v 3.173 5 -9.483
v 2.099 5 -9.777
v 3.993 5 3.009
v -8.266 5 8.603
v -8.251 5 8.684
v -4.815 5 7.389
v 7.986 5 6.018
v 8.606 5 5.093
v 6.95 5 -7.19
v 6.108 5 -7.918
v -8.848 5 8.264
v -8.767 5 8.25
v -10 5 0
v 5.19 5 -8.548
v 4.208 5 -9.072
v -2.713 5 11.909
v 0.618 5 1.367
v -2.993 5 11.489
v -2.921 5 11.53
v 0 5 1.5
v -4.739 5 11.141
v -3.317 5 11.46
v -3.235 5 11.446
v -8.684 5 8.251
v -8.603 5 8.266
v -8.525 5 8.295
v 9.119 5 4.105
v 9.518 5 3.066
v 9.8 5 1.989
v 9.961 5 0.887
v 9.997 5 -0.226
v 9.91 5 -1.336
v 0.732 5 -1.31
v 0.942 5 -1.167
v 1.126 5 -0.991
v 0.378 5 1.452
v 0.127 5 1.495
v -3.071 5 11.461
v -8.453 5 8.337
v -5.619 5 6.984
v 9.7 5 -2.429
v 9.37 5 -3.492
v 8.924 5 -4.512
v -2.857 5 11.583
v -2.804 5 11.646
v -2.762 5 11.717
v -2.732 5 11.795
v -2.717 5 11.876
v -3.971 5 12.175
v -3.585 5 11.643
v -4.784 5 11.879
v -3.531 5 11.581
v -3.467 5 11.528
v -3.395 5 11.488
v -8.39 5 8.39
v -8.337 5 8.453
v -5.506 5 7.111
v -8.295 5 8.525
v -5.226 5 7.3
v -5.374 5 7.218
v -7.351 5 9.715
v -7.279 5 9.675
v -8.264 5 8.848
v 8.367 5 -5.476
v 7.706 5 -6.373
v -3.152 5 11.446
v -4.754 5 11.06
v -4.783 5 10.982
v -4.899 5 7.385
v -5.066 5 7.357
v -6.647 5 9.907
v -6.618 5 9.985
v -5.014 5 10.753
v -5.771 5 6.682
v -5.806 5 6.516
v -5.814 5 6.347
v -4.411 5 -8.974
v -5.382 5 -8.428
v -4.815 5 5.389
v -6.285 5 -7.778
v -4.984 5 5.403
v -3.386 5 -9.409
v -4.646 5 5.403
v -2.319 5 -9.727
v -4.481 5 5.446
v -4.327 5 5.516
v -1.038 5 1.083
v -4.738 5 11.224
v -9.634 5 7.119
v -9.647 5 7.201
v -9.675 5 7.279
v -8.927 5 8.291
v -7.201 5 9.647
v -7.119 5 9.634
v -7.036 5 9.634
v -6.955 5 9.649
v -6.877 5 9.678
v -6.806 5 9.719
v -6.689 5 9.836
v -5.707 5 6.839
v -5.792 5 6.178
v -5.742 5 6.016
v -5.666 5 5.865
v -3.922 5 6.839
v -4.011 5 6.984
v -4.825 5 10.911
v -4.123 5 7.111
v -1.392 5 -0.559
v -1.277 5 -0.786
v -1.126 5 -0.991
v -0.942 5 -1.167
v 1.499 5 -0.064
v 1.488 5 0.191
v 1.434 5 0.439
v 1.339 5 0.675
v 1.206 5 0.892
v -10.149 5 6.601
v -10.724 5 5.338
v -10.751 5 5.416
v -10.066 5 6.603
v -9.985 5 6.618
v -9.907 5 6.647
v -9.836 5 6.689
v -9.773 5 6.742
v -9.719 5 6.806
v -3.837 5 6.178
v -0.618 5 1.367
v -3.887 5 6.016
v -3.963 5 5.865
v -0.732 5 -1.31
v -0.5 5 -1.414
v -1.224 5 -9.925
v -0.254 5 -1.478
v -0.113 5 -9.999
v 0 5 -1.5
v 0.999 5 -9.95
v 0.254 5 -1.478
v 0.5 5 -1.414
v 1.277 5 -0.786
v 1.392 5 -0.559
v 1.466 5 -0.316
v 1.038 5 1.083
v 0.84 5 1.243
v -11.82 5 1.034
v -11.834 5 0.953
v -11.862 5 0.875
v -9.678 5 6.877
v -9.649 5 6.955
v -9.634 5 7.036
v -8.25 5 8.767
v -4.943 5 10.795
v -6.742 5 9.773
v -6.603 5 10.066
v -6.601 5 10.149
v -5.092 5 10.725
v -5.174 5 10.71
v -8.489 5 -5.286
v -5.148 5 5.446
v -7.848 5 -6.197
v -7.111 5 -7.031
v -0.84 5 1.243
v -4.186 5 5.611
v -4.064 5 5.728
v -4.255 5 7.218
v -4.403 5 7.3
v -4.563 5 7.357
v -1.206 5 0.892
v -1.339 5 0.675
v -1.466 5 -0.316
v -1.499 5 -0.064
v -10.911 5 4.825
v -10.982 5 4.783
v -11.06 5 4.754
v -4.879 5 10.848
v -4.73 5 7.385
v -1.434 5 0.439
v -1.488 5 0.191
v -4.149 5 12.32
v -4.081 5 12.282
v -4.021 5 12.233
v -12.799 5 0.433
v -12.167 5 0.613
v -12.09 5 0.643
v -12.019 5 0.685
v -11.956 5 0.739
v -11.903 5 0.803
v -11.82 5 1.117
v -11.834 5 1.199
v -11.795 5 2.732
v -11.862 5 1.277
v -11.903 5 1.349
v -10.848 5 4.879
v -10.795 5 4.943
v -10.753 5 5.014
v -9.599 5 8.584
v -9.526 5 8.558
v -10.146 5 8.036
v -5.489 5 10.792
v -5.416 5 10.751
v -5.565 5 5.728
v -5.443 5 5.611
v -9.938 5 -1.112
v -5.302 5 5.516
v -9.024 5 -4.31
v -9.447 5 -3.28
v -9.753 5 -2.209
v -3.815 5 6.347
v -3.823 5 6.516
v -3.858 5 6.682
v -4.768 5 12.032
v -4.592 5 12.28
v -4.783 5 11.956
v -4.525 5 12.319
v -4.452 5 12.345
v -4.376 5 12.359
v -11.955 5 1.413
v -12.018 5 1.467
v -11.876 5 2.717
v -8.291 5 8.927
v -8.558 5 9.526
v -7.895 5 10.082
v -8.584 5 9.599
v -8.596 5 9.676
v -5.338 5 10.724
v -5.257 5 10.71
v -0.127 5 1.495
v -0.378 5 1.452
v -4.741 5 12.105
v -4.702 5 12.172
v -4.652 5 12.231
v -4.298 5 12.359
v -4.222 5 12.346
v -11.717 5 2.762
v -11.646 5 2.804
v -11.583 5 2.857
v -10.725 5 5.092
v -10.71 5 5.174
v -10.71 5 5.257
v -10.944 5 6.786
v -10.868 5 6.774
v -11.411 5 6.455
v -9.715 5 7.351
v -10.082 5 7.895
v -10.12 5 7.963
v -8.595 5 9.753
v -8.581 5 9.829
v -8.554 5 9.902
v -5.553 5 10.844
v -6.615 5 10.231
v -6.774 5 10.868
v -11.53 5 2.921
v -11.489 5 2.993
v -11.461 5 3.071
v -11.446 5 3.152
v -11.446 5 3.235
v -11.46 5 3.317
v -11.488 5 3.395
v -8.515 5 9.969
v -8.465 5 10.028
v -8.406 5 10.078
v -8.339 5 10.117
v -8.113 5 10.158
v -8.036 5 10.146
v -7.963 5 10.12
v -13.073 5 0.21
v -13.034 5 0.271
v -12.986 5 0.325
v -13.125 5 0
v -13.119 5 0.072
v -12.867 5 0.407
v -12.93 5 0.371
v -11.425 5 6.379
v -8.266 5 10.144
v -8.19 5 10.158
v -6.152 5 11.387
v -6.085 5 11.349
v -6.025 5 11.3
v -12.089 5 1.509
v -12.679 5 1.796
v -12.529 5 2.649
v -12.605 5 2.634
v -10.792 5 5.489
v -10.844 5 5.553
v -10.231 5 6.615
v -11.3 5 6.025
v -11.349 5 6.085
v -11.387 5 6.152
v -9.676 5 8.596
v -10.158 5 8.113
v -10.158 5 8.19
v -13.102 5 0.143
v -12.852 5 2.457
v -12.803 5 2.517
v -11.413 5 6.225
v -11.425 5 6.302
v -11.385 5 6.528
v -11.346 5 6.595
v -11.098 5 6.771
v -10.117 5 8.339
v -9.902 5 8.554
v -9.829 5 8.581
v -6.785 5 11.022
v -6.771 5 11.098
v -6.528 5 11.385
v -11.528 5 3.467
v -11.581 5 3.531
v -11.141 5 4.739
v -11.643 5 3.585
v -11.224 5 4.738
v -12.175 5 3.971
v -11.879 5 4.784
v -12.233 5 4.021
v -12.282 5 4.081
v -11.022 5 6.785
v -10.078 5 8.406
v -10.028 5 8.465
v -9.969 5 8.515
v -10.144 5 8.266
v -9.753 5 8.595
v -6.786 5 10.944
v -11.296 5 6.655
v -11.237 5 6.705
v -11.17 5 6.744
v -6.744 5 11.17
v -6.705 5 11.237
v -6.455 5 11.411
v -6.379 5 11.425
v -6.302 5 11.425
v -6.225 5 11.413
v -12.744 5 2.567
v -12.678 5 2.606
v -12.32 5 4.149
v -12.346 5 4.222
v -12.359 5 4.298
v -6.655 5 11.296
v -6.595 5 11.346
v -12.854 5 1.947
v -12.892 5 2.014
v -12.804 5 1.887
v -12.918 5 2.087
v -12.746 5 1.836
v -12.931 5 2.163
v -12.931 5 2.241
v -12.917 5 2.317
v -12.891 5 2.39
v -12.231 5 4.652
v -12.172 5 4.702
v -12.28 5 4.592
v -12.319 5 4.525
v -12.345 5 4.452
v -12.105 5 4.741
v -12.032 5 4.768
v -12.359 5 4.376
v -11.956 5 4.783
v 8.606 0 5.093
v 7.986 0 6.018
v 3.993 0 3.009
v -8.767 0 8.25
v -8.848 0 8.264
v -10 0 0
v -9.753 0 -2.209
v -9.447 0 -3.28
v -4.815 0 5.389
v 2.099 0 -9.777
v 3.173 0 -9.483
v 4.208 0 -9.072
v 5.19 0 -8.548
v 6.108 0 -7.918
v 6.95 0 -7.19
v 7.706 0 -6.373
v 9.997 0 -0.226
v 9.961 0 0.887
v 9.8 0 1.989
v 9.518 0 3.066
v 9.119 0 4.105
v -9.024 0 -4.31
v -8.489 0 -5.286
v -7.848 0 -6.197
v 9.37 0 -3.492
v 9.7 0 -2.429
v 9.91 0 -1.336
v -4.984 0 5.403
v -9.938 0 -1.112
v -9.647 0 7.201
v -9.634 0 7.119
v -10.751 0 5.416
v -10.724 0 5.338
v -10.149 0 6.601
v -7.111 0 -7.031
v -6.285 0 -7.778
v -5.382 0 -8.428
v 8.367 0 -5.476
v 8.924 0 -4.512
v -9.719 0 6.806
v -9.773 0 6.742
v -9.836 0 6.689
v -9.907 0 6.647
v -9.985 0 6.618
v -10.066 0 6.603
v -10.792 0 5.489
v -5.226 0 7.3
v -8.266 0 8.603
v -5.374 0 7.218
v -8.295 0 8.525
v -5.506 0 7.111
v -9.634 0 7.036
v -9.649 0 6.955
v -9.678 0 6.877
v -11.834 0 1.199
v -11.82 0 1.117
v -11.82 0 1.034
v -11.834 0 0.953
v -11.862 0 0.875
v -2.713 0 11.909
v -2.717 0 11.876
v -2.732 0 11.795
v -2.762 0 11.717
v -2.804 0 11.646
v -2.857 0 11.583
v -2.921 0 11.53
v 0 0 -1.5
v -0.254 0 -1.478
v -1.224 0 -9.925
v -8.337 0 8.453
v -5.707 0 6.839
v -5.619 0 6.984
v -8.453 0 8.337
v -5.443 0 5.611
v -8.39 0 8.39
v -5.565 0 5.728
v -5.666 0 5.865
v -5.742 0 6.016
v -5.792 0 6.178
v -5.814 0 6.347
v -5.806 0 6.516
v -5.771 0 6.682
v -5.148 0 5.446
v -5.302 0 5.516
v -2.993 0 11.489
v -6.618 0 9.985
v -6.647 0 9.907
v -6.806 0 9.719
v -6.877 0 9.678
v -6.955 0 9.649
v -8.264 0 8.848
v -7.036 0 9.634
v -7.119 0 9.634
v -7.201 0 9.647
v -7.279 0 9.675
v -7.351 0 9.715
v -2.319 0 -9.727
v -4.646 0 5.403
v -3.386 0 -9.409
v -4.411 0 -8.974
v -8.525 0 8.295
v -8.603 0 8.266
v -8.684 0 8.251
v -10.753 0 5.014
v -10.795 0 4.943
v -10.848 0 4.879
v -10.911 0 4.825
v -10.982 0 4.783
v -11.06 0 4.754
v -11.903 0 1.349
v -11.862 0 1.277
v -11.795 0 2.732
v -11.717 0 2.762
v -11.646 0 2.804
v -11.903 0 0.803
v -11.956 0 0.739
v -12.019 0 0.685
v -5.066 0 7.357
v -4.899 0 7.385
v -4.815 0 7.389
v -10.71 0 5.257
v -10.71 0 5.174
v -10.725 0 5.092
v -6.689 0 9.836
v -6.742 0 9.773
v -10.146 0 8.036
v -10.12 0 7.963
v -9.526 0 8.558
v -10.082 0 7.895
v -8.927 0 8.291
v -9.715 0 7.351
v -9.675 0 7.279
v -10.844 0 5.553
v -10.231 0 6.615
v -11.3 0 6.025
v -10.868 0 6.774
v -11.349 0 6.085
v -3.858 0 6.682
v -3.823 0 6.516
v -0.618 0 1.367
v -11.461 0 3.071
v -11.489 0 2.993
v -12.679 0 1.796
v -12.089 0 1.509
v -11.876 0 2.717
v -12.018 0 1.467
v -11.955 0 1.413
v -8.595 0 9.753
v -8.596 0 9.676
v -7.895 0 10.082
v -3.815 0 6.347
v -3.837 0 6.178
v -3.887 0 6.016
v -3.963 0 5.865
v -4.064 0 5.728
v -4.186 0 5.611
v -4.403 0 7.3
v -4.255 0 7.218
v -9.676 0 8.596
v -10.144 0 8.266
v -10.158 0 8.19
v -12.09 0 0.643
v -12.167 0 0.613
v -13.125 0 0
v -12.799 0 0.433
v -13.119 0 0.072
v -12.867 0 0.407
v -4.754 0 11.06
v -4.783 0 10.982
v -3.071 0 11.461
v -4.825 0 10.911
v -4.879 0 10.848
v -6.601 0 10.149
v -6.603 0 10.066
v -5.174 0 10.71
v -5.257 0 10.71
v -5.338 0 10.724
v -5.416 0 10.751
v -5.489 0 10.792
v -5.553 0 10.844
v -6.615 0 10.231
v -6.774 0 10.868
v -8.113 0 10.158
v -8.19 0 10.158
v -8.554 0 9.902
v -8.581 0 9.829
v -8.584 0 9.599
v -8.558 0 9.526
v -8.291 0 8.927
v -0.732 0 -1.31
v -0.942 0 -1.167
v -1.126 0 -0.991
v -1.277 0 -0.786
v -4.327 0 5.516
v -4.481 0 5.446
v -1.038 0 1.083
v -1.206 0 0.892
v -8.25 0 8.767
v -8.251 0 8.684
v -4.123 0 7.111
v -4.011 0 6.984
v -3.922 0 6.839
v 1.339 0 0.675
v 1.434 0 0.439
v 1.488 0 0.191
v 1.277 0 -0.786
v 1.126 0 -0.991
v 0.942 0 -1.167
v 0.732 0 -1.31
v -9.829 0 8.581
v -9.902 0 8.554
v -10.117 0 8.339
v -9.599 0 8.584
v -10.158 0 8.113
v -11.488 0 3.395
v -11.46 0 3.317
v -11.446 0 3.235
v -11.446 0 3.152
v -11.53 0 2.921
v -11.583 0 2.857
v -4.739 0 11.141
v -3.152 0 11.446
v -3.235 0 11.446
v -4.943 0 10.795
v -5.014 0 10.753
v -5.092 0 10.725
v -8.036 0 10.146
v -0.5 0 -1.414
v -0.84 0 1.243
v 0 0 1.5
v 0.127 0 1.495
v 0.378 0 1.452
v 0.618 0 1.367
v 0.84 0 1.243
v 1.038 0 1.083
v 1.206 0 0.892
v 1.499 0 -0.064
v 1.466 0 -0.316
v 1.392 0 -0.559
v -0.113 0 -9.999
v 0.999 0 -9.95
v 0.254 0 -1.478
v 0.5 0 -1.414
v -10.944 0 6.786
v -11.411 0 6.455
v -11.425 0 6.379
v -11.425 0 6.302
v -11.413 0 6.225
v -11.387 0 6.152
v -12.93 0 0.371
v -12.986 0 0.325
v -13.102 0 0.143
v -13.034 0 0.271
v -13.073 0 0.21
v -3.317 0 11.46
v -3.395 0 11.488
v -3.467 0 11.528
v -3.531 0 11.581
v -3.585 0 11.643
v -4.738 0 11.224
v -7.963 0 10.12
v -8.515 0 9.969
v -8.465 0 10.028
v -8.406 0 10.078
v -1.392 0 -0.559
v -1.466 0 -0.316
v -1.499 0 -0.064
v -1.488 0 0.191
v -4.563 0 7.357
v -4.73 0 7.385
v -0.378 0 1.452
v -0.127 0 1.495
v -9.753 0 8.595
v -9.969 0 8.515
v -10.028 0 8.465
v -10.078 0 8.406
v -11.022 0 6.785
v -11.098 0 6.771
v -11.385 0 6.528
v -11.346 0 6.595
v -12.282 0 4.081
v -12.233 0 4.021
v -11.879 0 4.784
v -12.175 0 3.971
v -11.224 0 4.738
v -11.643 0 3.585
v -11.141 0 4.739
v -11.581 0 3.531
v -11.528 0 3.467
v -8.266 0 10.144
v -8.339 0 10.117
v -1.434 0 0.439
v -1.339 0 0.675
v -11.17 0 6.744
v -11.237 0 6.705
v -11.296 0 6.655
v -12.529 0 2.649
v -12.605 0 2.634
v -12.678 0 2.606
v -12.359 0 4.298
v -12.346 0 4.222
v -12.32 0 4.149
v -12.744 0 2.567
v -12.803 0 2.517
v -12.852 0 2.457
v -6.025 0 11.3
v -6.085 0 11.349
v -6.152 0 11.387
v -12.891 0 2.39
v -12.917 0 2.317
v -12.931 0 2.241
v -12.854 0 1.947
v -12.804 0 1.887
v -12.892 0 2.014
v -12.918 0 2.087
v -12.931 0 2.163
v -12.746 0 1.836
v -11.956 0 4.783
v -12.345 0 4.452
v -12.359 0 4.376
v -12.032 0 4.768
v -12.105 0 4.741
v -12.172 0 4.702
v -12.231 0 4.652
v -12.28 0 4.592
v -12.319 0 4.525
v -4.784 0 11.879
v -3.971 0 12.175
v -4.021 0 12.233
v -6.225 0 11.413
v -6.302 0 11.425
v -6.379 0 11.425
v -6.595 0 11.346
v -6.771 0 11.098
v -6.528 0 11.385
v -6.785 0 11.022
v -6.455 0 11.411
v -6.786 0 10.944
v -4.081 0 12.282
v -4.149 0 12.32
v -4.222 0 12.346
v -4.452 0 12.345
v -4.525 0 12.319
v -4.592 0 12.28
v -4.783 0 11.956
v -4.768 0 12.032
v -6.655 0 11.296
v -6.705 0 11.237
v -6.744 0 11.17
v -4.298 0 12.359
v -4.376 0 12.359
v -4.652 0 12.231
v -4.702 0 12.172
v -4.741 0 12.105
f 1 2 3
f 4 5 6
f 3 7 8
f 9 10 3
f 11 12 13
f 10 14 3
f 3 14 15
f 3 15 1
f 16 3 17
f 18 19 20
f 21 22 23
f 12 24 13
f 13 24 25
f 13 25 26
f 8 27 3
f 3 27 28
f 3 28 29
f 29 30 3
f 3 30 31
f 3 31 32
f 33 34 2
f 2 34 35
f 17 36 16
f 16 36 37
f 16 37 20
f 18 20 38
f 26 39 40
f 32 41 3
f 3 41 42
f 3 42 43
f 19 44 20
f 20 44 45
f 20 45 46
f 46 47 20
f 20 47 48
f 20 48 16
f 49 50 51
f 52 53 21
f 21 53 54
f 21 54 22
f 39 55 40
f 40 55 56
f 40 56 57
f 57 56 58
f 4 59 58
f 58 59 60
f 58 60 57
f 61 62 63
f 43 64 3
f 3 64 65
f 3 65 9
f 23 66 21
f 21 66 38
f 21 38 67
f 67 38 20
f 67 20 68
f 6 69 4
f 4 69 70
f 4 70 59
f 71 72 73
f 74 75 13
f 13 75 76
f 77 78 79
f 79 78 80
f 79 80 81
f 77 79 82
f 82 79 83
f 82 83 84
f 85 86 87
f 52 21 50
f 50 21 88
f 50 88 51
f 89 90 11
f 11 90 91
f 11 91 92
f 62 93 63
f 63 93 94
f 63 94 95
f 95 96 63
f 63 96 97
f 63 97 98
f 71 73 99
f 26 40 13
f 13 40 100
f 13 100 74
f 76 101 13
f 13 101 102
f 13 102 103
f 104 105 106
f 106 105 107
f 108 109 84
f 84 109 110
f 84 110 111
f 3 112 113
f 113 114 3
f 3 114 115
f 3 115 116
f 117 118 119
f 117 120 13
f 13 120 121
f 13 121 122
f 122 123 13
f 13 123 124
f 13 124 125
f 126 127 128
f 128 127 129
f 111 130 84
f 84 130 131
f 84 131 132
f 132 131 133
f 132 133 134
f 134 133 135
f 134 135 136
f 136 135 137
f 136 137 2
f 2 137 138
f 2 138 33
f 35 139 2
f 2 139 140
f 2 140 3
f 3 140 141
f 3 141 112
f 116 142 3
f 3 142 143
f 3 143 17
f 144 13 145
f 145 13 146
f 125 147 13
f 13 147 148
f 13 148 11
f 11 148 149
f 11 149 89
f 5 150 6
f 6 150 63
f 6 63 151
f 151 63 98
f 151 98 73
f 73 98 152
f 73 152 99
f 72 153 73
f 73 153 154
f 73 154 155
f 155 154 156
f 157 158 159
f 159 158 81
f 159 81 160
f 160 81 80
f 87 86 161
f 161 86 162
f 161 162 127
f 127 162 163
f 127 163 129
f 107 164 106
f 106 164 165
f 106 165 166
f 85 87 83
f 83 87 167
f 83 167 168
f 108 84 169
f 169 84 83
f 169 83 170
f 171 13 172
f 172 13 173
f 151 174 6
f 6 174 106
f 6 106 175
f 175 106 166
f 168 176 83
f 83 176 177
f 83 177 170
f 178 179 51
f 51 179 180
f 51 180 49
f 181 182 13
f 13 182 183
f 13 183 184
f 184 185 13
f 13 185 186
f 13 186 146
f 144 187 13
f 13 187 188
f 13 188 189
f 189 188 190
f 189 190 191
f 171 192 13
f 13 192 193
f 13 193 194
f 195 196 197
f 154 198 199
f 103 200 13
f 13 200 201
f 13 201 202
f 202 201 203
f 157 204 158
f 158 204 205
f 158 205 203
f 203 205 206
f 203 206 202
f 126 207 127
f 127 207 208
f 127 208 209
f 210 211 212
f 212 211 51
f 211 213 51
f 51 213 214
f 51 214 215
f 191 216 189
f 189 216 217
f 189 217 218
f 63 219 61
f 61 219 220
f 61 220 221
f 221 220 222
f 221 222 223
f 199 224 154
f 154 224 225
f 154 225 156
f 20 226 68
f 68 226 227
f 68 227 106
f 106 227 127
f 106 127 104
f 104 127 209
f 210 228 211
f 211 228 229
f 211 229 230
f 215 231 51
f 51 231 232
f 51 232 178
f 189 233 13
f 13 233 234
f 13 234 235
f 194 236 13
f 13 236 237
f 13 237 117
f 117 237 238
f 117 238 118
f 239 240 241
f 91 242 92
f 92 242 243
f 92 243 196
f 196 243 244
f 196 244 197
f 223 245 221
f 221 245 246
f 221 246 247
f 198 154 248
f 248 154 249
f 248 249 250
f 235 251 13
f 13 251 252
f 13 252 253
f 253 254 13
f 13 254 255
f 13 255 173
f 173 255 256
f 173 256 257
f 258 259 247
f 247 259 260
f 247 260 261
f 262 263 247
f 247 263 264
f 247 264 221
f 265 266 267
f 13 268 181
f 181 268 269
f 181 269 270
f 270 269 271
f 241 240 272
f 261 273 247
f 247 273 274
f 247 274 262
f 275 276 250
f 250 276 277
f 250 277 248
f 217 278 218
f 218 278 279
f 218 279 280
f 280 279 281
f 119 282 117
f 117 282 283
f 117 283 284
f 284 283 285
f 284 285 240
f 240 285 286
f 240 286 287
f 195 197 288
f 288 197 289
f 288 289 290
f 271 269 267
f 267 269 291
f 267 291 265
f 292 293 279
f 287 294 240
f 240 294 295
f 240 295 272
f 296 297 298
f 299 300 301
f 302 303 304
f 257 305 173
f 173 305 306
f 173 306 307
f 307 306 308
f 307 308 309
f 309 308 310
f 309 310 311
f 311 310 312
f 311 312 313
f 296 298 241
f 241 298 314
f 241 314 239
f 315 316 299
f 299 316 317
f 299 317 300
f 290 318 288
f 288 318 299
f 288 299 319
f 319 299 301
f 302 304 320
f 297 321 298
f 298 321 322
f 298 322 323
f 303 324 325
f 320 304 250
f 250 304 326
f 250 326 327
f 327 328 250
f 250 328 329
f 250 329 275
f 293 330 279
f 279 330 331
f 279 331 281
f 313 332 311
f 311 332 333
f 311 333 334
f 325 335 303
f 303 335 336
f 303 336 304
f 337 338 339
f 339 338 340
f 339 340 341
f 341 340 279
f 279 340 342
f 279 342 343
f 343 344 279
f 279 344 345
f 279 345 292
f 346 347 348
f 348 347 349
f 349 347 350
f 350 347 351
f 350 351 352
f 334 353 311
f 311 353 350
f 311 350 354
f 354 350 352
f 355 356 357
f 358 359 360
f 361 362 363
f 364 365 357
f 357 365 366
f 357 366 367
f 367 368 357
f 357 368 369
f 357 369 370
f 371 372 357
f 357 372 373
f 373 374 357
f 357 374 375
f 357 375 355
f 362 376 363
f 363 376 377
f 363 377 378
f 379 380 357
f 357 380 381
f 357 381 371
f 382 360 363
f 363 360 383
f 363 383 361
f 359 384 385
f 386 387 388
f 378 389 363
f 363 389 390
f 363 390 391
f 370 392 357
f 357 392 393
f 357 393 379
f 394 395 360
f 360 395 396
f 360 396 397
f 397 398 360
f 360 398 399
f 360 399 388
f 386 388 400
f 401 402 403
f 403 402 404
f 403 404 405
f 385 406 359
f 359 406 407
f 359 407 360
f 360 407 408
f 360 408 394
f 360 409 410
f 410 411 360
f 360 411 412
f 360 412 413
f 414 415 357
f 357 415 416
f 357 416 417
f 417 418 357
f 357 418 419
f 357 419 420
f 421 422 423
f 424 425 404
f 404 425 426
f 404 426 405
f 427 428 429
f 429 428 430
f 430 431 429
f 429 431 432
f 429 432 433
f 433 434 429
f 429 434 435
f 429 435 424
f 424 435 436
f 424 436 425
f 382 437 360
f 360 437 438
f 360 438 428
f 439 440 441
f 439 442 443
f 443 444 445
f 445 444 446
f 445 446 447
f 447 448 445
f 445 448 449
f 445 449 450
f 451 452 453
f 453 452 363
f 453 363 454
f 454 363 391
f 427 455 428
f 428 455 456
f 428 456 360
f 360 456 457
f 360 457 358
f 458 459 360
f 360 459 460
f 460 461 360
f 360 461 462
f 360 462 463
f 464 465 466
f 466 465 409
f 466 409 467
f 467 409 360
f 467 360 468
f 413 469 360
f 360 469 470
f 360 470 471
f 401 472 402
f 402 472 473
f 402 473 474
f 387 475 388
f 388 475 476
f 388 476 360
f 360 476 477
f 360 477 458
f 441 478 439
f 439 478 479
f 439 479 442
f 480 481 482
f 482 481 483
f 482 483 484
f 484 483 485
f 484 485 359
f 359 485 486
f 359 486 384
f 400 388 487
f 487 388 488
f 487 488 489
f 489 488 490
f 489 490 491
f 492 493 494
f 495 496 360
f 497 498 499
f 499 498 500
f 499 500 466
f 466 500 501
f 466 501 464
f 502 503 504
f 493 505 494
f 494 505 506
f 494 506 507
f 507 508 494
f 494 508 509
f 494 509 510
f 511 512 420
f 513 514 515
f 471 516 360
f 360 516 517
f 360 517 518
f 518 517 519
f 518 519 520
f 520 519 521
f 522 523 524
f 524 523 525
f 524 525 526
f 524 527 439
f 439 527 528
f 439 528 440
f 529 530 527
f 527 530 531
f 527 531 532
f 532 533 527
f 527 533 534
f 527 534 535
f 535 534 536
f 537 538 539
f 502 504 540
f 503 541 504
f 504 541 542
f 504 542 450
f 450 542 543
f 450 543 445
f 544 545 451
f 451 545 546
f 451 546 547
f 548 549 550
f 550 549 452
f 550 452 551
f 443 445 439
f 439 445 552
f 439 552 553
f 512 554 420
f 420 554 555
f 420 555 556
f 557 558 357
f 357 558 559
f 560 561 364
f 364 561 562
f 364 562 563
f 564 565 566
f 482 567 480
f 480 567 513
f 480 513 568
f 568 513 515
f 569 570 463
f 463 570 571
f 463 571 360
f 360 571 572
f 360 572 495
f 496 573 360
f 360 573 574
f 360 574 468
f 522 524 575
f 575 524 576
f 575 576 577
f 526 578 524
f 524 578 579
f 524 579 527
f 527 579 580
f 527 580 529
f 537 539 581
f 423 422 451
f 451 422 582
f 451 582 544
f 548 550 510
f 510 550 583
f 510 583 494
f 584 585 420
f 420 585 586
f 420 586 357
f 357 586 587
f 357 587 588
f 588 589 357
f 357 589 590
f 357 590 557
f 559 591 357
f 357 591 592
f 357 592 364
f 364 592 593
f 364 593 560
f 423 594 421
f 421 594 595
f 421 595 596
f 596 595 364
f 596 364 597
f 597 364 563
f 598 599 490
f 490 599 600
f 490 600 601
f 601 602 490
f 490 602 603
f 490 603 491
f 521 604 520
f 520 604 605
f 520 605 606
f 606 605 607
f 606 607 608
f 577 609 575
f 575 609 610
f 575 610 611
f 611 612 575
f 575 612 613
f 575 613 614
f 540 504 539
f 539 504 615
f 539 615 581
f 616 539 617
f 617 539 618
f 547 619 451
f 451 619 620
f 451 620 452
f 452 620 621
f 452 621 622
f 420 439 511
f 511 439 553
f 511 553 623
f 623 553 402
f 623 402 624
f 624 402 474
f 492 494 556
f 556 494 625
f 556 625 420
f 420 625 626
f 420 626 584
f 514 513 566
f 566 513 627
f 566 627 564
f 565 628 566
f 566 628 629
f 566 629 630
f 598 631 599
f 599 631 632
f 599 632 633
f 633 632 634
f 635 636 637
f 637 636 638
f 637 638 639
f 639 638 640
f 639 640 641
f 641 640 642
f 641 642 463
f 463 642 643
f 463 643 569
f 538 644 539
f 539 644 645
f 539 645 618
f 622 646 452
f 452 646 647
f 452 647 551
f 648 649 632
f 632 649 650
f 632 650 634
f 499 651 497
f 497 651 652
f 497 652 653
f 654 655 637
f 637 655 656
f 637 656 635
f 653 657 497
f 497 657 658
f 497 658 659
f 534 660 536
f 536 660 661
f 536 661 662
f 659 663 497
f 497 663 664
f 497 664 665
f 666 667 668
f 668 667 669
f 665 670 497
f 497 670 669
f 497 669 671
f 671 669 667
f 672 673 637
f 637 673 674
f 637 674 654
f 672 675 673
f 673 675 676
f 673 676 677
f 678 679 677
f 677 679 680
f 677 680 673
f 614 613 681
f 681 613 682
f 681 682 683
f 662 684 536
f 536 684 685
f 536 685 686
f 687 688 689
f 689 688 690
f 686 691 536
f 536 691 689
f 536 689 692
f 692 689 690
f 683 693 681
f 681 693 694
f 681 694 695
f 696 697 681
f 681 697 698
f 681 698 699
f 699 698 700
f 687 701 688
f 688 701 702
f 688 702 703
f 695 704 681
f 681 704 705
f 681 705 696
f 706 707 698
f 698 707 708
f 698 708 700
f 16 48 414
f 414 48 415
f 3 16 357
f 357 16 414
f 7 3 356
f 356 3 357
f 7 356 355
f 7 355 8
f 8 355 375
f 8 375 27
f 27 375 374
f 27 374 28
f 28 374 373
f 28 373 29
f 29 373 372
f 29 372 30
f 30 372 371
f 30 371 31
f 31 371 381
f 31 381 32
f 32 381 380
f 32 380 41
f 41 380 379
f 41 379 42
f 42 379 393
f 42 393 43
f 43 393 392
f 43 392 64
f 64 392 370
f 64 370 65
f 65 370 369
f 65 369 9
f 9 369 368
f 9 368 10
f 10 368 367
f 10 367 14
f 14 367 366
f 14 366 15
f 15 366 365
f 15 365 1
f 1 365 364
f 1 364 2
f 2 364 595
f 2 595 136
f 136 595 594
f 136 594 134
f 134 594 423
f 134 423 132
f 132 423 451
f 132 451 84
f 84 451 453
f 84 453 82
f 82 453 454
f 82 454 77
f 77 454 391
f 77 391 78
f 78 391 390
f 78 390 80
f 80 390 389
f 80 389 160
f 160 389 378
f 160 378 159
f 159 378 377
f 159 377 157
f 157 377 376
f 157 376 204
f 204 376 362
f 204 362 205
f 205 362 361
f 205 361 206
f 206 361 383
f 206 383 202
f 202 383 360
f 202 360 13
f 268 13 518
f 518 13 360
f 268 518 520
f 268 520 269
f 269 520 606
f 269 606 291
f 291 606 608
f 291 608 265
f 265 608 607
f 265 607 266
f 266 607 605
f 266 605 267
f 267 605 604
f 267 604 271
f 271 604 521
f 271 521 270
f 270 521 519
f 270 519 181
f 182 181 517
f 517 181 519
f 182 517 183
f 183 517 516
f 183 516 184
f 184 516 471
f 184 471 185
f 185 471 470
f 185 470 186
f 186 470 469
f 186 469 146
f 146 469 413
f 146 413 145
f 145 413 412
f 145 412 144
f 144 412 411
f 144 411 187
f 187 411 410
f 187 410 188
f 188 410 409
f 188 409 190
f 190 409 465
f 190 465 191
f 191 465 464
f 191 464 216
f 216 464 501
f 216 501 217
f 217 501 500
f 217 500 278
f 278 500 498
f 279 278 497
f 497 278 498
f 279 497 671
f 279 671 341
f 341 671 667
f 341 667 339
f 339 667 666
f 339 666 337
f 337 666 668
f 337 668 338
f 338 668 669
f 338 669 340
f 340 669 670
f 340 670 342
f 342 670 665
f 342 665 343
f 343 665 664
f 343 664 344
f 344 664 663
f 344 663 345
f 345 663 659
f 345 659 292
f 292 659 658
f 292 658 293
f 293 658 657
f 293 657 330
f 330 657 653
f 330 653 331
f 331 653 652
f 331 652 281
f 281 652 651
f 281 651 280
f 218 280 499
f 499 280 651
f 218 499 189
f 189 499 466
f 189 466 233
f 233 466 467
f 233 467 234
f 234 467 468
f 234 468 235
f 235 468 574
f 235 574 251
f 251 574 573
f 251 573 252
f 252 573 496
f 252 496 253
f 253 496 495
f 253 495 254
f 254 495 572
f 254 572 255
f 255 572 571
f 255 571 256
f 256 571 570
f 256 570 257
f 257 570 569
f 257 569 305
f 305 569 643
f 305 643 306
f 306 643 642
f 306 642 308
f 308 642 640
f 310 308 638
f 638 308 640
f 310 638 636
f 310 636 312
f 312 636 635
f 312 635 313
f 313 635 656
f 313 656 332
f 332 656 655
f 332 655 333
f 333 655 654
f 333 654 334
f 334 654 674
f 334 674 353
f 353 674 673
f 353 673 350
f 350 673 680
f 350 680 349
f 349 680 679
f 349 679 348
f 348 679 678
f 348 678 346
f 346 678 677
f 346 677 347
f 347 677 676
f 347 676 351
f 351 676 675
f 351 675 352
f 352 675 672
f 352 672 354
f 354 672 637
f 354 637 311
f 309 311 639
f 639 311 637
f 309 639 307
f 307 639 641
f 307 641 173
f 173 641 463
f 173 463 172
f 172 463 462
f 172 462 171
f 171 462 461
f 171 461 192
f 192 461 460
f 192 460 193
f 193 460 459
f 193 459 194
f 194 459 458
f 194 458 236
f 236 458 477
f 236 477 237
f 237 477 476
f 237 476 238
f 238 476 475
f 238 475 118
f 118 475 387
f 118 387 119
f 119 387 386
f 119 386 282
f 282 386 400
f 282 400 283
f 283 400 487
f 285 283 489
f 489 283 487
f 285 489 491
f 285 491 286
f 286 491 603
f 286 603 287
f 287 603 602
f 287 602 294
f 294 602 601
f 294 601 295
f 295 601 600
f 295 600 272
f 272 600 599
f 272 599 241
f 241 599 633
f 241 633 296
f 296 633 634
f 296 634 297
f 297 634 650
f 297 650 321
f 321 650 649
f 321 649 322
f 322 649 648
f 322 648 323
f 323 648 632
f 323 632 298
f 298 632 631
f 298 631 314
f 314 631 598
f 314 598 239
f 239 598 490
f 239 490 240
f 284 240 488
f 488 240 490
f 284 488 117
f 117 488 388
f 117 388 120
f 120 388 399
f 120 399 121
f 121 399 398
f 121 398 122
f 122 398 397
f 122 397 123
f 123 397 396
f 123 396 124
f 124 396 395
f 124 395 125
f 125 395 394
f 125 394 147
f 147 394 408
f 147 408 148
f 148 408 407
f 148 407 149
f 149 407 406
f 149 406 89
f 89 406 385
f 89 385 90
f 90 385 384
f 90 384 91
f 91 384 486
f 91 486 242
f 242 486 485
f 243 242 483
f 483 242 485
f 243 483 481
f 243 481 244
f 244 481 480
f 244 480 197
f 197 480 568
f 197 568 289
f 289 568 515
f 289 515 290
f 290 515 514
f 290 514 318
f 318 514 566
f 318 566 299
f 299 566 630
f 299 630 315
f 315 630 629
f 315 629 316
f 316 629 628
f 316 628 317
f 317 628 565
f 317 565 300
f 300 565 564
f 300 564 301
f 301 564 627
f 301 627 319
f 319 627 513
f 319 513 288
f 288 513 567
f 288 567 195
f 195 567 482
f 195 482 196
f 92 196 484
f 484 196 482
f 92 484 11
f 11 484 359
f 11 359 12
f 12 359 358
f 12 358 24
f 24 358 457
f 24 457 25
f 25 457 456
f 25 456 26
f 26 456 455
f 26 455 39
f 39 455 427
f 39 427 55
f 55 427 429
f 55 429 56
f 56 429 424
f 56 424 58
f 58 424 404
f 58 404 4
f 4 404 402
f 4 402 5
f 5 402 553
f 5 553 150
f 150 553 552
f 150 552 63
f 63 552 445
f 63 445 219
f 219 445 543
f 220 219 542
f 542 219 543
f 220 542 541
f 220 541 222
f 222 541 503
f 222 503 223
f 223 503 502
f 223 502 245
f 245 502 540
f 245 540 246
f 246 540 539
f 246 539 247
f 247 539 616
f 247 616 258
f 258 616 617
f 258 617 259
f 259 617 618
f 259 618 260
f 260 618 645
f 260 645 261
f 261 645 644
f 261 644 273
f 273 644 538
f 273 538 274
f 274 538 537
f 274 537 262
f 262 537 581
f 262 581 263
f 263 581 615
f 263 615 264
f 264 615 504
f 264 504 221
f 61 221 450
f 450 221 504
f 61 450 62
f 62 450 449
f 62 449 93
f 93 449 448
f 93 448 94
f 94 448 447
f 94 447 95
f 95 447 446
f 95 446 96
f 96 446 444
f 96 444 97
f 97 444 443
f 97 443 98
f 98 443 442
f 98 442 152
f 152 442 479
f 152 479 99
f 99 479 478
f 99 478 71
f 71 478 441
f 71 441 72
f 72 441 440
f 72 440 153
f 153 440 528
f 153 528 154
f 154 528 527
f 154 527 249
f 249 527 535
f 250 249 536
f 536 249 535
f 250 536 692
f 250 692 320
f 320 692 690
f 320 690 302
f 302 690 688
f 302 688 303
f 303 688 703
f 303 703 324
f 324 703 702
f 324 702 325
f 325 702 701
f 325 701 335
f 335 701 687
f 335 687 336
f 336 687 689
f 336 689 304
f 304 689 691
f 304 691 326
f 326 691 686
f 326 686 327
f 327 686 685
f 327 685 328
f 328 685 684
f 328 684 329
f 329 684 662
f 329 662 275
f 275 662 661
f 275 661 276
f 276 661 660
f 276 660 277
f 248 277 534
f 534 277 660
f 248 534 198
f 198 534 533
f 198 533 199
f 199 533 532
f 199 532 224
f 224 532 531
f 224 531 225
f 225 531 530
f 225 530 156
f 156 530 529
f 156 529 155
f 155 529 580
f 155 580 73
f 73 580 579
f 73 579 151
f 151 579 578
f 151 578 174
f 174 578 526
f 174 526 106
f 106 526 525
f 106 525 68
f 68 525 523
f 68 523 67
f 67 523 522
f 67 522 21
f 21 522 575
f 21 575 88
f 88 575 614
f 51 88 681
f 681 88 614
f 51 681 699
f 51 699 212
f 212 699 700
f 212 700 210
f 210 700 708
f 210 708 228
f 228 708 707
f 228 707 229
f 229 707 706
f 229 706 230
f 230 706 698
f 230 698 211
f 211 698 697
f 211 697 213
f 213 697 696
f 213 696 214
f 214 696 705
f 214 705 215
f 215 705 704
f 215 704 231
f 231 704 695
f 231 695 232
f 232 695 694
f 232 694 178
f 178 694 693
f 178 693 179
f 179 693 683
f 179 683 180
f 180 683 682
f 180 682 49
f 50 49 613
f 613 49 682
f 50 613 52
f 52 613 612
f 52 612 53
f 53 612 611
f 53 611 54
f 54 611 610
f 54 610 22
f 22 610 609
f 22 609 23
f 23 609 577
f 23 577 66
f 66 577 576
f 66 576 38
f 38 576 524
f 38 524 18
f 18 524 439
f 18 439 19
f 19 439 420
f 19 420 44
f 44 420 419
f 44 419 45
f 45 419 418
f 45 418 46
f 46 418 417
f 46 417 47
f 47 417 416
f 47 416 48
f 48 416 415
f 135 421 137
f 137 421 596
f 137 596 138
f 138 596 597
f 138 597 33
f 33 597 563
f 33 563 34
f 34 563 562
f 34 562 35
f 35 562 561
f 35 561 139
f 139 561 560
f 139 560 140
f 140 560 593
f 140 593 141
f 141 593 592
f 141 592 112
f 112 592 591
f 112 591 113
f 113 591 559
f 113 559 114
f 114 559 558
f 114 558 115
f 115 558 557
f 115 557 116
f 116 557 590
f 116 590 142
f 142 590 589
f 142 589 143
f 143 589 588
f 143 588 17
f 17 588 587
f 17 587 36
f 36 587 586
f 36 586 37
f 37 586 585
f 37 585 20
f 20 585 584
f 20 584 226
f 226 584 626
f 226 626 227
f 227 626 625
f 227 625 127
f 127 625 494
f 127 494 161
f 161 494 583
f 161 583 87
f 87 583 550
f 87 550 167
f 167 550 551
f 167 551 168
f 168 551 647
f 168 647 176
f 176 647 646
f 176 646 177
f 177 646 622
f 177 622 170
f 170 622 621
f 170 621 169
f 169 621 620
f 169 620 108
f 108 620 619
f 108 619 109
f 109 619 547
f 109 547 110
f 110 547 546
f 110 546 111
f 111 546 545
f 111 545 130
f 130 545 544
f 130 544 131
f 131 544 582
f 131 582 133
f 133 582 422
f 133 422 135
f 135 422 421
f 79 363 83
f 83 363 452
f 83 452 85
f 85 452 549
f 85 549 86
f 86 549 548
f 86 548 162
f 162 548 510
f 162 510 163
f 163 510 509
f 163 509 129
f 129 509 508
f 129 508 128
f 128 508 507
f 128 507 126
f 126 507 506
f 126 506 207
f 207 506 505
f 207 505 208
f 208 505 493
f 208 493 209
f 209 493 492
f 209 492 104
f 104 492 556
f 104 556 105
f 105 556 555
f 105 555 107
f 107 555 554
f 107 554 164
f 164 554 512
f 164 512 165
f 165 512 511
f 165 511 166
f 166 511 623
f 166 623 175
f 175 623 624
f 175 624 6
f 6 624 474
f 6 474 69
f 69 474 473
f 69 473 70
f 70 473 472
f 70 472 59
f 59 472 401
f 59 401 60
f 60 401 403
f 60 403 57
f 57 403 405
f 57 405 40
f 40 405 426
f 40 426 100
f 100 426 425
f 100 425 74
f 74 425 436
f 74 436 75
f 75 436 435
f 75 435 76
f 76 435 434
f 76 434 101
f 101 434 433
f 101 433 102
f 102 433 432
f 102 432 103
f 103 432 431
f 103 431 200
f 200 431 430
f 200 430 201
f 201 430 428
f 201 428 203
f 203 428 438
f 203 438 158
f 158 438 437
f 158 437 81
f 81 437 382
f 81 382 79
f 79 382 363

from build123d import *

# Parameters (mm, degrees)
ESQUISSE1_R        = 1
ESQUISSE1_R_2      = 1.5
BOSS_EXTRU_1_DEPTH = 5


with BuildPart() as part:
    # Esquisse1 → Boss.-Extru.1 (new body)
    with BuildSketch(Plane(origin=(0, 0, 0), x_dir=(1, 0, 0), z_dir=(0, 1, 0))):
        with BuildLine():
            Line((3.99317755, -3.009075116), (7.9863551, -6.018150232))
            ThreePointArc((7.9863551, -6.018150232), (3.173046564, 9.483236552), (-10, 0))
            Line((-10, 0), (-13.125, 0))
            ThreePointArc((-13.125, 0), (-13.034258246, -0.270986186), (-12.798628832, -0.432684541))
            Line((-12.798628832, -0.432684541), (-12.167425855, -0.613035071))
            ThreePointArc((-12.167425855, -0.613035071), (-11.81998128, -1.034114365), (-12.089027739, -1.509129635))
            Line((-12.089027739, -1.509129635), (-12.679323783, -1.796347483))
            ThreePointArc((-12.679323783, -1.796347483), (-12.925601758, -2.279132332), (-12.529054019, -2.648569664))
            Line((-12.529054019, -2.648569664), (-11.876122893, -2.716573018))
            ThreePointArc((-11.876122893, -2.716573018), (-11.46083713, -3.070922054), (-11.643310633, -3.585440202))
            Line((-11.643310633, -3.585440202), (-12.174763898, -3.970798397))
            ThreePointArc((-12.174763898, -3.970798397), (-12.333465648, -4.489014381), (-11.878790241, -4.783979338))
            Line((-11.878790241, -4.783979338), (-11.223969947, -4.737569268))
            ThreePointArc((-11.223969947, -4.737569268), (-10.753461244, -5.01442133), (-10.843817425, -5.552808982))
            Line((-10.843817425, -5.552808982), (-11.300279972, -6.024598612))
            ThreePointArc((-11.300279972, -6.024598612), (-11.366583425, -6.5625), (-10.867595431, -6.77403022))
            Line((-10.867595431, -6.77403022), (-10.230782353, -6.614616873))
            ThreePointArc((-10.230782353, -6.614616873), (-9.719346879, -6.805559951), (-9.714840312, -7.351458472))
            Line((-9.714840312, -7.351458472), (-10.082442758, -7.895344446))
            ThreePointArc((-10.082442758, -7.895344446), (-10.054333316, -8.436587377), (-9.526194234, -8.558255622))
            Line((-9.526194234, -8.558255622), (-8.926737615, -8.290682691))
            ThreePointArc((-8.926737615, -8.290682691), (-8.389915077, -8.389915077), (-8.290682691, -8.926737615))
            Line((-8.290682691, -8.926737615), (-8.558255622, -9.526194234))
            ThreePointArc((-8.558255622, -9.526194234), (-8.436587377, -10.054333316), (-7.895344446, -10.082442758))
            Line((-7.895344446, -10.082442758), (-7.351458472, -9.714840312))
            ThreePointArc((-7.351458472, -9.714840312), (-6.805559951, -9.719346879), (-6.614616873, -10.230782353))
            Line((-6.614616873, -10.230782353), (-6.77403022, -10.867595431))
            ThreePointArc((-6.77403022, -10.867595431), (-6.5625, -11.366583425), (-6.024598612, -11.300279972))
            Line((-6.024598612, -11.300279972), (-5.552808982, -10.843817425))
            ThreePointArc((-5.552808982, -10.843817425), (-5.01442133, -10.753461244), (-4.737569268, -11.223969947))
            Line((-4.737569268, -11.223969947), (-4.783979338, -11.878790241))
            ThreePointArc((-4.783979338, -11.878790241), (-4.489014381, -12.333465648), (-3.970798397, -12.174763898))
            Line((-3.970798397, -12.174763898), (-3.585440202, -11.643310633))
            ThreePointArc((-3.585440202, -11.643310633), (-3.070922054, -11.46083713), (-2.716573018, -11.876122893))
            Line((-2.716573018, -11.876122893), (-2.713178959, -11.908710794))
            Line((-2.713178959, -11.908710794), (3.99317755, -3.009075116))
        make_face()
        with Locations(Location((-4.814520185, -6.38908408, 0), (0, 0, 270))):
            Circle(ESQUISSE1_R, mode=Mode.SUBTRACT)
        with Locations(Location((0, 0, 0), (0, 0, 270))):
            Circle(ESQUISSE1_R_2, mode=Mode.SUBTRACT)
    extrude(amount=BOSS_EXTRU_1_DEPTH)


solid = part.part
